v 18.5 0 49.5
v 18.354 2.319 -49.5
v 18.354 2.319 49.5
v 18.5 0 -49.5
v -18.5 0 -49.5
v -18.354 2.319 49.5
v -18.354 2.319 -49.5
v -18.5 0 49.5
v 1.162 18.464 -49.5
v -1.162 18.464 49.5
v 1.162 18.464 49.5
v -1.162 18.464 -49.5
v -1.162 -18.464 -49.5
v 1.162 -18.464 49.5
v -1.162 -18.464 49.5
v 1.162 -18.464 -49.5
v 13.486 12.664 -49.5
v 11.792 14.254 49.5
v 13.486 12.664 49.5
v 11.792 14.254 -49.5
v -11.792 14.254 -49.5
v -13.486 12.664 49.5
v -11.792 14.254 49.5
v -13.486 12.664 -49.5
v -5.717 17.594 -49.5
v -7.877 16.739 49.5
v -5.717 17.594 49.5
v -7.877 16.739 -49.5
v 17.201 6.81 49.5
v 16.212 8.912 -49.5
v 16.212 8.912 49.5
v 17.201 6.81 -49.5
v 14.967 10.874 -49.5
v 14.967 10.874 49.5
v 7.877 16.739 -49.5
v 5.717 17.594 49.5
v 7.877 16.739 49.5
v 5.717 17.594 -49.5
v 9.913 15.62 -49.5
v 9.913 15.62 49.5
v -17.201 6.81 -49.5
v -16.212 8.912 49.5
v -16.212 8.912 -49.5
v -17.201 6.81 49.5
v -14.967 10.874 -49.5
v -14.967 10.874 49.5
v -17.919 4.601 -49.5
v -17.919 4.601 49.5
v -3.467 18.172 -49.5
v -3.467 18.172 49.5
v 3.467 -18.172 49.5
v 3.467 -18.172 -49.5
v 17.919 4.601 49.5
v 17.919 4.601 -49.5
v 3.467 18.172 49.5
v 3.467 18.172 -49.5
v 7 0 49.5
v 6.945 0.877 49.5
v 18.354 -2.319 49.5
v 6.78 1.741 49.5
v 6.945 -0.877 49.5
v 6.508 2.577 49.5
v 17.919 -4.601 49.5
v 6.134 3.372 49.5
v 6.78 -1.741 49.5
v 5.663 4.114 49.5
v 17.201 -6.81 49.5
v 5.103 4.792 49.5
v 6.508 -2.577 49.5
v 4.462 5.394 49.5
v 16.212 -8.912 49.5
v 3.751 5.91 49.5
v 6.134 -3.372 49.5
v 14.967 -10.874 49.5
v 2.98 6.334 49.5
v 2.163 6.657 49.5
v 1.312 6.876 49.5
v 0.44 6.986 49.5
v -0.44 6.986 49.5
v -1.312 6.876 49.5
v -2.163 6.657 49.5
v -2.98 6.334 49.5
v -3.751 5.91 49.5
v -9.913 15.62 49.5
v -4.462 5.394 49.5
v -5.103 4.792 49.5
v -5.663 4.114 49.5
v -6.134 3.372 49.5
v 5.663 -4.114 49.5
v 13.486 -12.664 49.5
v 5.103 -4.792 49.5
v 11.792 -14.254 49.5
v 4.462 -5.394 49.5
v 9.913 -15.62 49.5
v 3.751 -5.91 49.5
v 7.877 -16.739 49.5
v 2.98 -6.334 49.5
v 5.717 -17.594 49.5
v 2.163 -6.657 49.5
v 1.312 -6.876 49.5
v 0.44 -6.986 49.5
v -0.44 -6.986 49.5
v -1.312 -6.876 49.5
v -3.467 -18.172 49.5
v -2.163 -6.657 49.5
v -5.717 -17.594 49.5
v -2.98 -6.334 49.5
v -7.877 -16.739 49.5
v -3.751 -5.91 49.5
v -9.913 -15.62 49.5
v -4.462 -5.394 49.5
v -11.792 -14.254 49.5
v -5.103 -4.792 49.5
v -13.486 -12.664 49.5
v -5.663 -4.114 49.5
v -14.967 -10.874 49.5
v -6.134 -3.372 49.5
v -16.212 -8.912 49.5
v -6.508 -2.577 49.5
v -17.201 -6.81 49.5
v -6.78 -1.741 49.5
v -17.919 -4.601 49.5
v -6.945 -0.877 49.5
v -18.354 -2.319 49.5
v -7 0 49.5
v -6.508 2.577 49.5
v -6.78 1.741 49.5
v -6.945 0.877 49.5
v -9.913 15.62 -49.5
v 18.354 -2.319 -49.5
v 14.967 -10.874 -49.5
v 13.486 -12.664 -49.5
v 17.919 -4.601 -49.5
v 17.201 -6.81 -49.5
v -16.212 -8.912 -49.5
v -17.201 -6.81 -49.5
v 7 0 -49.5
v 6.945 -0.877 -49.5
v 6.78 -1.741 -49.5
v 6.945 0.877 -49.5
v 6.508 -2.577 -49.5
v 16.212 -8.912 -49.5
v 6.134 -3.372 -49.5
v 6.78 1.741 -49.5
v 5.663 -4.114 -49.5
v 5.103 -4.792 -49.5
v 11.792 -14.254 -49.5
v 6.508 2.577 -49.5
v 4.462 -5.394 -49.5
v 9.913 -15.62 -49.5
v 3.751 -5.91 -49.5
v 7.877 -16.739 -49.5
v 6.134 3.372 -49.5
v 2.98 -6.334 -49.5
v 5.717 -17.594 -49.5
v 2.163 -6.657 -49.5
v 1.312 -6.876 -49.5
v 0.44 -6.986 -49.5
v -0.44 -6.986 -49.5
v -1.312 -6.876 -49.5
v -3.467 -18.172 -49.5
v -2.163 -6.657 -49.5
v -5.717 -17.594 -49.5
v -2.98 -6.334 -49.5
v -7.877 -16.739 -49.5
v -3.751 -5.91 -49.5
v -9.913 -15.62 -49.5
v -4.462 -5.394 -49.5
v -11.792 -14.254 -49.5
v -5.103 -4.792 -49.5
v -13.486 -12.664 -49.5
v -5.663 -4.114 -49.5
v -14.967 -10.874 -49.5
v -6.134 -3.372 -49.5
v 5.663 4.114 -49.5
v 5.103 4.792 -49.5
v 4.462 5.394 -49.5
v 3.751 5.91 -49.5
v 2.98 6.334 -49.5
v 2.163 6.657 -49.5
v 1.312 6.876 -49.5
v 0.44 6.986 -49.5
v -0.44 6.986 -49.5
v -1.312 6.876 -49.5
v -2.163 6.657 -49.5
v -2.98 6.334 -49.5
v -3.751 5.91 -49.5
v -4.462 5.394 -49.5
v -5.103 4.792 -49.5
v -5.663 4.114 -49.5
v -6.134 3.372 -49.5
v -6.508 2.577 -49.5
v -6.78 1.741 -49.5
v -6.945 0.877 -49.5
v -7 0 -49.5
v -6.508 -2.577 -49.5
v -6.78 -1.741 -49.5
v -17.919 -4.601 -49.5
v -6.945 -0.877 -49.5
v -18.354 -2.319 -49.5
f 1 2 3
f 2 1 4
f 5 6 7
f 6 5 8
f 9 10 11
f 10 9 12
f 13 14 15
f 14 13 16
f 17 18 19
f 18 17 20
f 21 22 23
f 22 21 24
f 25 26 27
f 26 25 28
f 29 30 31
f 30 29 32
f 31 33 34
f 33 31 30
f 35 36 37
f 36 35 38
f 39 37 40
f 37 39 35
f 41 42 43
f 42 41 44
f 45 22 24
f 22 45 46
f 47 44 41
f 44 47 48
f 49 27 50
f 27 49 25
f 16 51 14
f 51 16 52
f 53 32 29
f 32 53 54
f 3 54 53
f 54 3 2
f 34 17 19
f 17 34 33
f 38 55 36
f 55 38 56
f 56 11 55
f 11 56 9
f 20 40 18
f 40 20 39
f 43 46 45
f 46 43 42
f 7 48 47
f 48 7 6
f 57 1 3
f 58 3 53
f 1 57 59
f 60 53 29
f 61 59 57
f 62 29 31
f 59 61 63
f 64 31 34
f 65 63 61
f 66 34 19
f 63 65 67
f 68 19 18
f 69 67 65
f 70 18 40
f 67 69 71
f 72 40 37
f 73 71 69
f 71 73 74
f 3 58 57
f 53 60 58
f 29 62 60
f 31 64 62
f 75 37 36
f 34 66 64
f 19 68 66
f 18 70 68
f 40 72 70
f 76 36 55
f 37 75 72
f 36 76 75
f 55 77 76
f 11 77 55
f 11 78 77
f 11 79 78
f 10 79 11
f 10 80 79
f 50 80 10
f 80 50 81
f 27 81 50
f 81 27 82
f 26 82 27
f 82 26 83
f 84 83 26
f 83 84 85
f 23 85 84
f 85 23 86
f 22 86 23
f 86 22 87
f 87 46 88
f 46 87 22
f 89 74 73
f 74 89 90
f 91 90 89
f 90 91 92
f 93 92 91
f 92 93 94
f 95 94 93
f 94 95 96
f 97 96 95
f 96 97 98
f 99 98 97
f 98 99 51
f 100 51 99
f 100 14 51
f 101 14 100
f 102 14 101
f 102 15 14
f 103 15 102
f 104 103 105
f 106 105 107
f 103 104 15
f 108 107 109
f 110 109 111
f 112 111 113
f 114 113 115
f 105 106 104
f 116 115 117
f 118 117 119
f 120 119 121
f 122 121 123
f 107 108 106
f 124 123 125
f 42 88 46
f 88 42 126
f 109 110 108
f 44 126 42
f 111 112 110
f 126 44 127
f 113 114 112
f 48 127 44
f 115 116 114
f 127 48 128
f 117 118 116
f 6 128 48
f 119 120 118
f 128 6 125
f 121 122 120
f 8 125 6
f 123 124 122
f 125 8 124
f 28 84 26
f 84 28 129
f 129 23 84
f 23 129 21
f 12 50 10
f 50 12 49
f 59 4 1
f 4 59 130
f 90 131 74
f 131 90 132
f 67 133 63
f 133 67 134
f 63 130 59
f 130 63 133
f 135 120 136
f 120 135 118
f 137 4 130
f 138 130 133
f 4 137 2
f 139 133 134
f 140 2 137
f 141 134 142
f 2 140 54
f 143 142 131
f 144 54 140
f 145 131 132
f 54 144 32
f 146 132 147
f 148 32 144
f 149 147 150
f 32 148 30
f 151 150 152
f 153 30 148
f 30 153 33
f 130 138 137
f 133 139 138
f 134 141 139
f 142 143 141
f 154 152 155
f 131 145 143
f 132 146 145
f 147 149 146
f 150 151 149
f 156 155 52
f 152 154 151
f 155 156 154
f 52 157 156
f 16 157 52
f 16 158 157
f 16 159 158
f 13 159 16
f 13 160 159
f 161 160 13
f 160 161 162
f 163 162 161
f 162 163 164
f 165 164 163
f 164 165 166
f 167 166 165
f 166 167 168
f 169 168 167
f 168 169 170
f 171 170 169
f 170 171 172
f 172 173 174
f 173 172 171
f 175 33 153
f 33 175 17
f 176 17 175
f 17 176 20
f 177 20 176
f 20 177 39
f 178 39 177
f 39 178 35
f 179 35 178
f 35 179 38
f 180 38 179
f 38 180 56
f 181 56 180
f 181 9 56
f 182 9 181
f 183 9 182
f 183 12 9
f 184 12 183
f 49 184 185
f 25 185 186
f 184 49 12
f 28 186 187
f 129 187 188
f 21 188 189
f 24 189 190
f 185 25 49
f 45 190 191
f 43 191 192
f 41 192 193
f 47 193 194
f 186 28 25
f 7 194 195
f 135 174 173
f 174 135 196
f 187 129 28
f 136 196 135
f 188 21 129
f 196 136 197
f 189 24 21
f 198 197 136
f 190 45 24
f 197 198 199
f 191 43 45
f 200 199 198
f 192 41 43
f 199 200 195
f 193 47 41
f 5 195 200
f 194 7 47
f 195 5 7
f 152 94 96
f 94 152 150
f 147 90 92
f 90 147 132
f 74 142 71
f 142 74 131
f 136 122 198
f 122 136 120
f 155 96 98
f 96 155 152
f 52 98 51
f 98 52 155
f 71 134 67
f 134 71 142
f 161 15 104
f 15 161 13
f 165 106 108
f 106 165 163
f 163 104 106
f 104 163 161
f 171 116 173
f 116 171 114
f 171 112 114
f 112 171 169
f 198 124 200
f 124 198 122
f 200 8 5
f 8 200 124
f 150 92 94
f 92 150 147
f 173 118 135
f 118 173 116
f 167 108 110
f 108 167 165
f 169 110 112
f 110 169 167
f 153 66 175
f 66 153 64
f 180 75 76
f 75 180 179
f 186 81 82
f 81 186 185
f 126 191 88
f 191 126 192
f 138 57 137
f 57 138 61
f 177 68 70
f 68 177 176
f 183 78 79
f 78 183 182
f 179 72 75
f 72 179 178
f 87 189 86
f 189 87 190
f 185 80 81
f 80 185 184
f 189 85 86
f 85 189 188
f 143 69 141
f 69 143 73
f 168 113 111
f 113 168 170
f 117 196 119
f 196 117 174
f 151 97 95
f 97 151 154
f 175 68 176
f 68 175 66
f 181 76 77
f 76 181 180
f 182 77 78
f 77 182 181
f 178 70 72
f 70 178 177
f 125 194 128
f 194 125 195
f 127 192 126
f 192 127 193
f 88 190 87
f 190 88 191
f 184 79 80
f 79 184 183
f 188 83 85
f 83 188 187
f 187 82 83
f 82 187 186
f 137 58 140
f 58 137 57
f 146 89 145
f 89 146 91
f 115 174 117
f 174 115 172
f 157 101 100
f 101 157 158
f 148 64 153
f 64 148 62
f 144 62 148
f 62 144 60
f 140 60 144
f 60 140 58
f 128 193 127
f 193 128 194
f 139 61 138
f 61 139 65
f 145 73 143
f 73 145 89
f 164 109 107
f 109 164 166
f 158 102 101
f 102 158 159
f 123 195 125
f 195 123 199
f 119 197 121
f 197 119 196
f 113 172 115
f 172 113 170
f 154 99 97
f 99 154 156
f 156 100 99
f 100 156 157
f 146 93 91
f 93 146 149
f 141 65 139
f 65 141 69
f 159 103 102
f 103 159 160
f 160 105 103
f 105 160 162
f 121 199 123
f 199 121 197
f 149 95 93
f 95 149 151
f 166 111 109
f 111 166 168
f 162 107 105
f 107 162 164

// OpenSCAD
$fn = 50;


difference() {
	union() {
		translate(v = [0, 0, -49.5000000000]) {
			cylinder(h = 99, r = 18.5000000000);
		}
	}
	union() {
		translate(v = [0, 0, -100.0000000000]) {
			cylinder(h = 200, r = 7);
		}
	}
}
